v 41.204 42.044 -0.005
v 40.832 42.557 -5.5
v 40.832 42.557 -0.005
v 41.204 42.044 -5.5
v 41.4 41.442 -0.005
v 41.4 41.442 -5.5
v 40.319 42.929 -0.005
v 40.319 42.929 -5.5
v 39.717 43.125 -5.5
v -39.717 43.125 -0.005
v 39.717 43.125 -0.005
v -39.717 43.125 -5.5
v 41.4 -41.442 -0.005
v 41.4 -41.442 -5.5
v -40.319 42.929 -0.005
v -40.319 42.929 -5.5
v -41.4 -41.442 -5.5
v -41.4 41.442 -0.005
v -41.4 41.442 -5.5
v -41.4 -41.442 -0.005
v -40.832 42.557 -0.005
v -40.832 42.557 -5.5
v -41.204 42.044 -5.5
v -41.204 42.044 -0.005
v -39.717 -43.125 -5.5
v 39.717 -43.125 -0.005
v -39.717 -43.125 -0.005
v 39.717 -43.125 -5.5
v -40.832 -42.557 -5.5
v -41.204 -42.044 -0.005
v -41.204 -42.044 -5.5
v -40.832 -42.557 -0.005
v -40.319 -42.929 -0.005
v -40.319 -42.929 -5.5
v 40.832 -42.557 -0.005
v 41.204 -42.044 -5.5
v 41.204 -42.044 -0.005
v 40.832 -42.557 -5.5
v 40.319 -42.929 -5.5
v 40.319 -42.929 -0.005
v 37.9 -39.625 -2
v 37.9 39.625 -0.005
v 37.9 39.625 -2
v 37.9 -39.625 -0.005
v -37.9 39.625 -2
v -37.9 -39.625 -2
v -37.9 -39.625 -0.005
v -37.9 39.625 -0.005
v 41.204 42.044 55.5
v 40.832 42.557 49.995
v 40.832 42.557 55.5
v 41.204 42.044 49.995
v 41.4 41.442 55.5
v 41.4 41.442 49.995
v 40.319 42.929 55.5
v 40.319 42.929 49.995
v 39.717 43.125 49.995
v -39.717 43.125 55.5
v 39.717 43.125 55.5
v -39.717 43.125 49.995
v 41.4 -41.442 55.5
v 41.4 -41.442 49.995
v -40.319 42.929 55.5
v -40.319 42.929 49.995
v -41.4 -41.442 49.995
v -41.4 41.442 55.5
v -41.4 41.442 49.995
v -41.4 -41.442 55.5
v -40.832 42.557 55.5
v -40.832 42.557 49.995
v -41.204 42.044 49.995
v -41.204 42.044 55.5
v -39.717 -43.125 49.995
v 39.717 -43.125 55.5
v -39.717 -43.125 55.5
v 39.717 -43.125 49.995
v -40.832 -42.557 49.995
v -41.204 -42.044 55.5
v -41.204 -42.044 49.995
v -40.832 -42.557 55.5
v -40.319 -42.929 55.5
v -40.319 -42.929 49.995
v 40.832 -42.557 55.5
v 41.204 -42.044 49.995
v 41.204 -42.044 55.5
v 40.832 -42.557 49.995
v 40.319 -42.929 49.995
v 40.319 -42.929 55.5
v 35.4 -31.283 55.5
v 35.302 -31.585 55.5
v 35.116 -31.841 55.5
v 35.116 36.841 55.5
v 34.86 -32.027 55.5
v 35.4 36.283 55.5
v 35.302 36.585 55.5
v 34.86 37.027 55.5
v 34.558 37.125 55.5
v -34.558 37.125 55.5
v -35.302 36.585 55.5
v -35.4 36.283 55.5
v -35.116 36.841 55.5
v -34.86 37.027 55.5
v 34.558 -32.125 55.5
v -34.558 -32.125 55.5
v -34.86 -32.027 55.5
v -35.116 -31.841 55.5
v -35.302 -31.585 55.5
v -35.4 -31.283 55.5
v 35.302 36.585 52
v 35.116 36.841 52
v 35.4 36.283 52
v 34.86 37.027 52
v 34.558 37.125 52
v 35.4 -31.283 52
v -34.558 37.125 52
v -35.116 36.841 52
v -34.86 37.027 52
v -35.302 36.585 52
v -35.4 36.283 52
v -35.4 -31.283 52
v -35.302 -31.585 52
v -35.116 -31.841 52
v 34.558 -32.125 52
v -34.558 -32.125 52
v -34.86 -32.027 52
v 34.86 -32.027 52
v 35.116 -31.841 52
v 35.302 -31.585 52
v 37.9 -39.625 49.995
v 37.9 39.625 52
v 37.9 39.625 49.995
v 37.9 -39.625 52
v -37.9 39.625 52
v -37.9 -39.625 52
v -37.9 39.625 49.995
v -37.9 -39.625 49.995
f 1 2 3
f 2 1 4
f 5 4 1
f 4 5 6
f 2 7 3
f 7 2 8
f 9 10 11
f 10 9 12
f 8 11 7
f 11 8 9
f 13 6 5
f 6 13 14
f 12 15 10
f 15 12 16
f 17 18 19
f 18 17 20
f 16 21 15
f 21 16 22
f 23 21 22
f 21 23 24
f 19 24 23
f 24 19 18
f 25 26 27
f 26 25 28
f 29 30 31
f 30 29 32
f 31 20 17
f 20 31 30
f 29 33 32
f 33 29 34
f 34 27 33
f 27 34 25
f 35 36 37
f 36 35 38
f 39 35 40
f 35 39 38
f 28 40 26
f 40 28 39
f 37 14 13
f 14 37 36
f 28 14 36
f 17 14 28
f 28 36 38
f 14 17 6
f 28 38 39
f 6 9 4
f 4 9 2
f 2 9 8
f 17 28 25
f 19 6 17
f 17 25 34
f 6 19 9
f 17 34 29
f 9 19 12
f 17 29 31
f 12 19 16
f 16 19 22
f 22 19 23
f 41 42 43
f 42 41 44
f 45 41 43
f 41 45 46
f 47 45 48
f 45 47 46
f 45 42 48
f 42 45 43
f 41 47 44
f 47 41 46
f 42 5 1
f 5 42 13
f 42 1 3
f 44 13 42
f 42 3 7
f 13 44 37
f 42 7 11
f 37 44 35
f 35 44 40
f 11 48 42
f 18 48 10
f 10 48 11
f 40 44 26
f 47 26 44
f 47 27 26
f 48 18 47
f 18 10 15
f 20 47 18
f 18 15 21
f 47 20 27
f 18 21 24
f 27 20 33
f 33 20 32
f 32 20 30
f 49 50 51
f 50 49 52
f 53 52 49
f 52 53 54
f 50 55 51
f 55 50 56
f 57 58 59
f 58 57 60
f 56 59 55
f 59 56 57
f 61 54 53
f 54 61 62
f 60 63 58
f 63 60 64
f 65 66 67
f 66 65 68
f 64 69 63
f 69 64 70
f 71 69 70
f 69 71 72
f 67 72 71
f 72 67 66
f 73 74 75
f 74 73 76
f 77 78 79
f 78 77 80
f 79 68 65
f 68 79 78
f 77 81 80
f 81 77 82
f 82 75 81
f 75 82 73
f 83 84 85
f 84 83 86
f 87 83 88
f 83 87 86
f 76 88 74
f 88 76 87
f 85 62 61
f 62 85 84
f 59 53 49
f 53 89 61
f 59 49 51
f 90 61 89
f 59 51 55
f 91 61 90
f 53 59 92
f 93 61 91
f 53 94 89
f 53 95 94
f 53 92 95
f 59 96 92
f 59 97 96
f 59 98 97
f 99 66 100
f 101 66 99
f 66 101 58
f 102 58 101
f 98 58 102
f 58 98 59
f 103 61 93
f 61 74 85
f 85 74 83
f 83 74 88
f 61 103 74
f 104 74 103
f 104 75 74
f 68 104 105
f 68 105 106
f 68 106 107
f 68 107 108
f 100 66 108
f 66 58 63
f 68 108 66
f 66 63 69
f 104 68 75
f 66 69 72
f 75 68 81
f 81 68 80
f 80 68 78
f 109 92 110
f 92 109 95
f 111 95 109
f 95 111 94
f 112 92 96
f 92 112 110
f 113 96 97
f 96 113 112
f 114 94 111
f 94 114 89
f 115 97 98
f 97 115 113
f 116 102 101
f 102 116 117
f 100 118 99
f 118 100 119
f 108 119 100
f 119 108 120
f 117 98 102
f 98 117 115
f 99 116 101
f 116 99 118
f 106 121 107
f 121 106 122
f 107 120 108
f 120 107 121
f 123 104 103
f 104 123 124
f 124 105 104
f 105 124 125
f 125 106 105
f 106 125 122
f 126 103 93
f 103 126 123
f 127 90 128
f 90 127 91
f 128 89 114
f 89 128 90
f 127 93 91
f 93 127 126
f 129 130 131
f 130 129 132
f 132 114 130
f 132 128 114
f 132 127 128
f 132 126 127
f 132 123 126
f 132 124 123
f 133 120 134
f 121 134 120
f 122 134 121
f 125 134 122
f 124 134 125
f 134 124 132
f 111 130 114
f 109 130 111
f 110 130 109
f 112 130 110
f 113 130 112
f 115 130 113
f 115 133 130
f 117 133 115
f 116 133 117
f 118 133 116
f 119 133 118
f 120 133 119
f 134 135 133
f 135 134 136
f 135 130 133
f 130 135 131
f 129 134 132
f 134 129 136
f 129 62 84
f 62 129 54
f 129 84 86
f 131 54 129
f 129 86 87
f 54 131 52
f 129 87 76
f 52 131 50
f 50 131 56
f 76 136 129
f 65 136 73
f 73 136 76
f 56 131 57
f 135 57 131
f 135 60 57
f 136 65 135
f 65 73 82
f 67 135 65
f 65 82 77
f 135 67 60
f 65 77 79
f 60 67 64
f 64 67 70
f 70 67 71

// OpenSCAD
/*
 * This work is licensed under the Creative Commons Attribution-ShareAlike
 * 4.0 International License. To view a copy of this license, visit
 * https://creativecommons.org/licenses/by-sa/4.0/.
 */

include <../libraries/BOSL/constants.scad>
use <../libraries/BOSL/metric_screws.scad>
use <../libraries/BOSL/shapes.scad>
use <../libraries/BOSL/transforms.scad>
use <../libraries/BOSL/masks.scad>

/*[ Render settings ]*/

// Quality of rounded corners
$fn = 18;

/*[ 3D-printing tools ]*/

// Split the case up so that it can be printed on 220x220mm printers
split_into_parts = true;

// Split the case by this many mm
split_enclosure_by_mm = 50;

/*[ HyperPixel dimensions ]*/

hyperpixel_width=74.80;
hyperpixel_depth=78.25;
hyperpixel_height=3;
hyperpixel_bottom_pad=5;

/*[ Enclosure parameters ]*/

wall_thickness=4;
enclosure_fillet=2;

// tolerance of fitting around HyperPixel
tolerance = 0.50;

/*
 * ______________________________________________________________
 * ==============================================================
 *  DO NOT EDIT ANYTHING BELOW UNLESS YOU KNOW WHAT YOU'RE DOING
 * ^^^^^^^^^^^^^^^^^^^^^^^^^^^^^^^^^^^^^^^^^^^^^^^^^^^^^^^^^^^^^^
 */

layer_diff=1*0.01;

panel_size=[
    hyperpixel_width,
    hyperpixel_height
];

enclosure_size=[
    hyperpixel_width+(wall_thickness*2),
    hyperpixel_depth+(wall_thickness*2),
    hyperpixel_height+(wall_thickness*2)
];

cavity_size=[
    hyperpixel_width+(tolerance*2),
    hyperpixel_depth+(tolerance*2),
    hyperpixel_height+(tolerance*2)
];

screen_cutout=[
    hyperpixel_width-wall_thickness,
    hyperpixel_depth-wall_thickness-hyperpixel_bottom_pad,
    wall_thickness+layer_diff
];

module shell() {
    difference()
    {
        // main box
        cuboid(enclosure_size, fillet=enclosure_fillet, edges=EDGES_Z_ALL, center=true);
        cuboid(cavity_size, edges=EDGES_Z_ALL, center=true);
        // screen
        translate([0,hyperpixel_bottom_pad/2,wall_thickness])
            cuboid(screen_cutout, fillet=enclosure_fillet/2, edges=EDGES_Z_ALL, center=true);
    }
}

module enclosure() {
    union() {
        shell();
    }
}

module enclosure_joiners() {
}

module enclosure_separator() {
    translate([0,0,enclosure_size[2]/2]) {
        cube([
            enclosure_size[0]+layer_diff, // width
            enclosure_size[1]+layer_diff, // depth
            enclosure_size[2]+layer_diff // height
        ], center=true);
    }
}

module generate_parts() {
    joiner_slop=0.4;
    difference() {
        enclosure();
        enclosure_separator();
    }

    translate([0,0,split_enclosure_by_mm])
    intersection() {
        shell();
        enclosure_separator();
    }

    enclosure_joiners();
}

if (split_into_parts==true) {
    generate_parts();
} else {
    enclosure();
}
